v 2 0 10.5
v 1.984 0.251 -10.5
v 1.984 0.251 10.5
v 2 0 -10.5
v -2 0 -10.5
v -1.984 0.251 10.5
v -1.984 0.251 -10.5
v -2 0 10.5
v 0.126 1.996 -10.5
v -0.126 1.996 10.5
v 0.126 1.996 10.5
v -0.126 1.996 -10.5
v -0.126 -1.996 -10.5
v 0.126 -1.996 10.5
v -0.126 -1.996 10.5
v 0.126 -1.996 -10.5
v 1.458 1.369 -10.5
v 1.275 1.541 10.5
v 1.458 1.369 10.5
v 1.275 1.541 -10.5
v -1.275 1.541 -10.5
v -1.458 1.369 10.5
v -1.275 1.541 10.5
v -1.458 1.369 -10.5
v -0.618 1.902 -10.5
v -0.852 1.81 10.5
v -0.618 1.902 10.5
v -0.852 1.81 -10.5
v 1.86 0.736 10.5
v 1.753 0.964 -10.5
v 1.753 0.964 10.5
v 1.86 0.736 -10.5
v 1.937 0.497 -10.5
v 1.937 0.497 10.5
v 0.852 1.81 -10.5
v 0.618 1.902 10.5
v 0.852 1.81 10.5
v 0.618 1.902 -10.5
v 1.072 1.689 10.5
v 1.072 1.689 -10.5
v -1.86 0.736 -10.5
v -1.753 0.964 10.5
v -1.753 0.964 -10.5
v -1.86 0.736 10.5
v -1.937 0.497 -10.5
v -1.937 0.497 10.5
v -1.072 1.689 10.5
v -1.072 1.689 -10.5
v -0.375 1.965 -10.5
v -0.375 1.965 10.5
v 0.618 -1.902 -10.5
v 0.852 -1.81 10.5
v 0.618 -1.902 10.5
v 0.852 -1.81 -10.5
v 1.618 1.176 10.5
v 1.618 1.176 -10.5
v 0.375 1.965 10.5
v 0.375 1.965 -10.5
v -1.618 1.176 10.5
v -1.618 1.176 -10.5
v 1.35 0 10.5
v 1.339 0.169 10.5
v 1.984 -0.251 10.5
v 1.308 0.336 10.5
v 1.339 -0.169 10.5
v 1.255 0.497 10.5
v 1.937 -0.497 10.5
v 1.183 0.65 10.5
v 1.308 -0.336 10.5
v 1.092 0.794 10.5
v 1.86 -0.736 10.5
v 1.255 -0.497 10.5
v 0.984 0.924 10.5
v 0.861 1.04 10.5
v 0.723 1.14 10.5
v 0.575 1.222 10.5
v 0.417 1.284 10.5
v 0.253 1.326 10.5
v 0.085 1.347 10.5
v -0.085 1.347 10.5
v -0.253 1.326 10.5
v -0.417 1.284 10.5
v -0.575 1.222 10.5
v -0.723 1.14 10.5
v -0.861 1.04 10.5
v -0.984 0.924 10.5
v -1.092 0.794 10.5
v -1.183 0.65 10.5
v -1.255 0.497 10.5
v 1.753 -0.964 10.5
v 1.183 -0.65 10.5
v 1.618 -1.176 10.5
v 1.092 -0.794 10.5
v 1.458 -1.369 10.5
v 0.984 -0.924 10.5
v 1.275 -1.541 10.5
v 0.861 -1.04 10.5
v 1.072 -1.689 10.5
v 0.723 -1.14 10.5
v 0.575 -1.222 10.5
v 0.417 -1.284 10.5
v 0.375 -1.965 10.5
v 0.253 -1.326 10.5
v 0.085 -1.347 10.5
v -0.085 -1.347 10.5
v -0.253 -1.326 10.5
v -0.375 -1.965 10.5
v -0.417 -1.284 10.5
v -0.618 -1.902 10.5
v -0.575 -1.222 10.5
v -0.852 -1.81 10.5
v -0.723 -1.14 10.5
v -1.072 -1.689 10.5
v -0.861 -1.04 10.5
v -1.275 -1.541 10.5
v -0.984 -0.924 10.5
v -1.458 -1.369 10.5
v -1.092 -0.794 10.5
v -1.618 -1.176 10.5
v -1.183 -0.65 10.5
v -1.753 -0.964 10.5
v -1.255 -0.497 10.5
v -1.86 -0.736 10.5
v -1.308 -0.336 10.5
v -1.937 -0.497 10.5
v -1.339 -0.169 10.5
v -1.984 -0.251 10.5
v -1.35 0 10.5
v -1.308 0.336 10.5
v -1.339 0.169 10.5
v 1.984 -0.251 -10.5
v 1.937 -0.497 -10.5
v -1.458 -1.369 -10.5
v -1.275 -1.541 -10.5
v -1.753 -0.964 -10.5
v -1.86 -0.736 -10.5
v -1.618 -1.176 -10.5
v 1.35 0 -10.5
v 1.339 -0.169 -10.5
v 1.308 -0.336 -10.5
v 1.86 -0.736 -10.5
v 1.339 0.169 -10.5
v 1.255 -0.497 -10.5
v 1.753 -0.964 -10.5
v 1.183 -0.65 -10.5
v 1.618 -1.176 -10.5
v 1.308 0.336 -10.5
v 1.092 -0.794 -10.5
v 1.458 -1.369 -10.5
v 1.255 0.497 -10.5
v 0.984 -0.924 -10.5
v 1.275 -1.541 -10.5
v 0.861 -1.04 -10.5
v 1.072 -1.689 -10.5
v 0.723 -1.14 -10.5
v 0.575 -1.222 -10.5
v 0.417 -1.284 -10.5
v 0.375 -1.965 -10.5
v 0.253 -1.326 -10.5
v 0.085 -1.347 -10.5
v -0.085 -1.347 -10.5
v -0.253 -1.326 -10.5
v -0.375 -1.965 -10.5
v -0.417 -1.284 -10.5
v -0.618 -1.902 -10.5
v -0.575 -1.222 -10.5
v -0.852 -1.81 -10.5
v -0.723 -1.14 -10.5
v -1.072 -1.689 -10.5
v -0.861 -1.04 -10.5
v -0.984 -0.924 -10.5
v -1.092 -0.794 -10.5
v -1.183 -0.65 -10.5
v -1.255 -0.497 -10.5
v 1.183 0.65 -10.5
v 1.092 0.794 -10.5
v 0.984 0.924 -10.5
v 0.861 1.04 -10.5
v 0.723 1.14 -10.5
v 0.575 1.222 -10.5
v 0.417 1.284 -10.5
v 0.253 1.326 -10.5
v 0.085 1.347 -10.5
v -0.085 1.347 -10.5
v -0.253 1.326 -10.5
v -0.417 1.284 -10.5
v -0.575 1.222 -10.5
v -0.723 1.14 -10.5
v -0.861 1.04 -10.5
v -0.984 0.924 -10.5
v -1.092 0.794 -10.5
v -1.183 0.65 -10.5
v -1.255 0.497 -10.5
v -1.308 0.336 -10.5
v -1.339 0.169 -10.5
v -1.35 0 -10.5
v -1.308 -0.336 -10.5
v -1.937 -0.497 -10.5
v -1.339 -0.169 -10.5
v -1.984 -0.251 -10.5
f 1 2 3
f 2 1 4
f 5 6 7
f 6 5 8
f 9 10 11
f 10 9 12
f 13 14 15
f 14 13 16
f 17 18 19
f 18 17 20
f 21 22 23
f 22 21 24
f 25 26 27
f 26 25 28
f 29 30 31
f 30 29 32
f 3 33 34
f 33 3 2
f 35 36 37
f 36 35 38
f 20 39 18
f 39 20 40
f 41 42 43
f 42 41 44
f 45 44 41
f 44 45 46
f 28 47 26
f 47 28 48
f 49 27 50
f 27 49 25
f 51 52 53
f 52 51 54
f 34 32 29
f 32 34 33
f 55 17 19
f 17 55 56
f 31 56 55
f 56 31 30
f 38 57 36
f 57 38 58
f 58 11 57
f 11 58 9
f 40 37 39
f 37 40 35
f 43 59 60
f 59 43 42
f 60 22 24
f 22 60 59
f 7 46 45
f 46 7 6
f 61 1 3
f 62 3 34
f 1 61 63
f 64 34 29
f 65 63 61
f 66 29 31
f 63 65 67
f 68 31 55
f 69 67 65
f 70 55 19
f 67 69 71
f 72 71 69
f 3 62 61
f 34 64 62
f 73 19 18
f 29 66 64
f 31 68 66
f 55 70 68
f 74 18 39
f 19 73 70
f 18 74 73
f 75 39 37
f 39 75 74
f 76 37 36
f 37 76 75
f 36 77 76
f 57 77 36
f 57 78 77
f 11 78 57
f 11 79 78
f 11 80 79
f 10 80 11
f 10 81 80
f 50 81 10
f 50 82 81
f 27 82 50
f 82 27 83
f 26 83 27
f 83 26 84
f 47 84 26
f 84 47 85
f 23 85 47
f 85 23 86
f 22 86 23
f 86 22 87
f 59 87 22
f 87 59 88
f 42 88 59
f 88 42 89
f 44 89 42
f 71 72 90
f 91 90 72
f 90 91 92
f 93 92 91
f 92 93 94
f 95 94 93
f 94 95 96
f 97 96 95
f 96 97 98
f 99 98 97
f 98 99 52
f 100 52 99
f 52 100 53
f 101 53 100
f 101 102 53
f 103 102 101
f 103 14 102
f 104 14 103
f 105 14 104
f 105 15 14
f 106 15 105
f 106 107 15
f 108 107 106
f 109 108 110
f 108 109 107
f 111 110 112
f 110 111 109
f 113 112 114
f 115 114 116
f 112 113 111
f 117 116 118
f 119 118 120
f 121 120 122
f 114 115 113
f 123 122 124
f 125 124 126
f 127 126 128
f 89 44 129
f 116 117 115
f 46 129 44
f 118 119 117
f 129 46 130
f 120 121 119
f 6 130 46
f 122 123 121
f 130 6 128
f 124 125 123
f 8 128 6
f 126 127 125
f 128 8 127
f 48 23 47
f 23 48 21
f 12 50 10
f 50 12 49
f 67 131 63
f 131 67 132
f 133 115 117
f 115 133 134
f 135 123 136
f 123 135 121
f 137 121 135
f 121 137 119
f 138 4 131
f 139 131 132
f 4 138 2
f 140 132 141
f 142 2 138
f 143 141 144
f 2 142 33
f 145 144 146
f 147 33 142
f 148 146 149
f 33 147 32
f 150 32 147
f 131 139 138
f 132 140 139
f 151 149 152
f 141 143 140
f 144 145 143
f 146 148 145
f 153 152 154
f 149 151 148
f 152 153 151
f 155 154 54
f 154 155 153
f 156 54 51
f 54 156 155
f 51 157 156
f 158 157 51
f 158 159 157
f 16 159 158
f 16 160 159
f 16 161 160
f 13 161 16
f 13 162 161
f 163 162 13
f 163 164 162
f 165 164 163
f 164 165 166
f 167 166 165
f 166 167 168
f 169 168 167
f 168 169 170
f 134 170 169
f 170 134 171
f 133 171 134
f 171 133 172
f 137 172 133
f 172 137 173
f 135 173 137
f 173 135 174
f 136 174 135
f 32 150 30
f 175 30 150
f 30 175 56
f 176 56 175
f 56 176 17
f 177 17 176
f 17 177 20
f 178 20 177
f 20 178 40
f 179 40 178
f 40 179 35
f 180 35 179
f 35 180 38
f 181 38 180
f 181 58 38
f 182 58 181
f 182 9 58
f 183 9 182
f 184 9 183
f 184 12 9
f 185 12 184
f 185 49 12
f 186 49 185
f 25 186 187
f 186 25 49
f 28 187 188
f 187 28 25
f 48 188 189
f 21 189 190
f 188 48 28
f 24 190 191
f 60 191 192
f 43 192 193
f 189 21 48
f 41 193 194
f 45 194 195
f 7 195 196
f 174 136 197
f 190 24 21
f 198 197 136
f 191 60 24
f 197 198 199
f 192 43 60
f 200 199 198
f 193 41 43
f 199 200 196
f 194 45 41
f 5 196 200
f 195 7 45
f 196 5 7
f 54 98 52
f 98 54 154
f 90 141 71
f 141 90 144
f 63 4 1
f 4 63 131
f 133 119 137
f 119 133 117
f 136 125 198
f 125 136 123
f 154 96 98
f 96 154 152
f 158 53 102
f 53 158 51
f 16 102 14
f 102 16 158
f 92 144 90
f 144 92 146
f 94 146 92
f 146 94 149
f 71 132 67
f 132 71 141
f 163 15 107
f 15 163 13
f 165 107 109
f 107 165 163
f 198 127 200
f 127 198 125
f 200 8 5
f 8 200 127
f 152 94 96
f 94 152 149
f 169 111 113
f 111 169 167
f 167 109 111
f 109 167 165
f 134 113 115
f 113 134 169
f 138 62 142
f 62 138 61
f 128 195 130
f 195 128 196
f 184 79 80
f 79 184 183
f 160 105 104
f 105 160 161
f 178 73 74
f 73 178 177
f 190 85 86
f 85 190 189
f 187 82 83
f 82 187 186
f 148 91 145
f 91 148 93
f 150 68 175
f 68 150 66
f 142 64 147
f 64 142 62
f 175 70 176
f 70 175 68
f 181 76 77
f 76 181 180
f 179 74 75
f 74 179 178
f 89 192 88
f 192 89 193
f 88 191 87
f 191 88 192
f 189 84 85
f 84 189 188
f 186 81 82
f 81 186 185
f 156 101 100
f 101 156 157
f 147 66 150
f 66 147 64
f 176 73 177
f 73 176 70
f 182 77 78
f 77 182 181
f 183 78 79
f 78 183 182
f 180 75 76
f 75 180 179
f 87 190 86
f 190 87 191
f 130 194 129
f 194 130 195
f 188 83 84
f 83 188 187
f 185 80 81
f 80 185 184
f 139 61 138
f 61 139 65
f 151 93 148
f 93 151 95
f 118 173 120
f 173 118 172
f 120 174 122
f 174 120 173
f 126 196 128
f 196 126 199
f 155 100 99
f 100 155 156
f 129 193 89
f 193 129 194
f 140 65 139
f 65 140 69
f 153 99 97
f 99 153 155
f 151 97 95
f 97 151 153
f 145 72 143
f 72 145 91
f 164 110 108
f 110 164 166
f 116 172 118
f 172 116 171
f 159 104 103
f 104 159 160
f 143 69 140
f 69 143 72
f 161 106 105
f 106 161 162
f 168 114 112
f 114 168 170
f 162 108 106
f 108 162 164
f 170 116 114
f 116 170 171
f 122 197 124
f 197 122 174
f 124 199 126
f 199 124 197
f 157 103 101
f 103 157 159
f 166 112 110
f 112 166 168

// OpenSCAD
$fn = 50;


difference() {
	union() {
		translate(v = [0, 0, -10.5000000000]) {
			cylinder(h = 21, r = 2.0000000000);
		}
	}
	union() {
		translate(v = [0, 0, -100.0000000000]) {
			cylinder(h = 200, r = 1.3500000000);
		}
	}
}
